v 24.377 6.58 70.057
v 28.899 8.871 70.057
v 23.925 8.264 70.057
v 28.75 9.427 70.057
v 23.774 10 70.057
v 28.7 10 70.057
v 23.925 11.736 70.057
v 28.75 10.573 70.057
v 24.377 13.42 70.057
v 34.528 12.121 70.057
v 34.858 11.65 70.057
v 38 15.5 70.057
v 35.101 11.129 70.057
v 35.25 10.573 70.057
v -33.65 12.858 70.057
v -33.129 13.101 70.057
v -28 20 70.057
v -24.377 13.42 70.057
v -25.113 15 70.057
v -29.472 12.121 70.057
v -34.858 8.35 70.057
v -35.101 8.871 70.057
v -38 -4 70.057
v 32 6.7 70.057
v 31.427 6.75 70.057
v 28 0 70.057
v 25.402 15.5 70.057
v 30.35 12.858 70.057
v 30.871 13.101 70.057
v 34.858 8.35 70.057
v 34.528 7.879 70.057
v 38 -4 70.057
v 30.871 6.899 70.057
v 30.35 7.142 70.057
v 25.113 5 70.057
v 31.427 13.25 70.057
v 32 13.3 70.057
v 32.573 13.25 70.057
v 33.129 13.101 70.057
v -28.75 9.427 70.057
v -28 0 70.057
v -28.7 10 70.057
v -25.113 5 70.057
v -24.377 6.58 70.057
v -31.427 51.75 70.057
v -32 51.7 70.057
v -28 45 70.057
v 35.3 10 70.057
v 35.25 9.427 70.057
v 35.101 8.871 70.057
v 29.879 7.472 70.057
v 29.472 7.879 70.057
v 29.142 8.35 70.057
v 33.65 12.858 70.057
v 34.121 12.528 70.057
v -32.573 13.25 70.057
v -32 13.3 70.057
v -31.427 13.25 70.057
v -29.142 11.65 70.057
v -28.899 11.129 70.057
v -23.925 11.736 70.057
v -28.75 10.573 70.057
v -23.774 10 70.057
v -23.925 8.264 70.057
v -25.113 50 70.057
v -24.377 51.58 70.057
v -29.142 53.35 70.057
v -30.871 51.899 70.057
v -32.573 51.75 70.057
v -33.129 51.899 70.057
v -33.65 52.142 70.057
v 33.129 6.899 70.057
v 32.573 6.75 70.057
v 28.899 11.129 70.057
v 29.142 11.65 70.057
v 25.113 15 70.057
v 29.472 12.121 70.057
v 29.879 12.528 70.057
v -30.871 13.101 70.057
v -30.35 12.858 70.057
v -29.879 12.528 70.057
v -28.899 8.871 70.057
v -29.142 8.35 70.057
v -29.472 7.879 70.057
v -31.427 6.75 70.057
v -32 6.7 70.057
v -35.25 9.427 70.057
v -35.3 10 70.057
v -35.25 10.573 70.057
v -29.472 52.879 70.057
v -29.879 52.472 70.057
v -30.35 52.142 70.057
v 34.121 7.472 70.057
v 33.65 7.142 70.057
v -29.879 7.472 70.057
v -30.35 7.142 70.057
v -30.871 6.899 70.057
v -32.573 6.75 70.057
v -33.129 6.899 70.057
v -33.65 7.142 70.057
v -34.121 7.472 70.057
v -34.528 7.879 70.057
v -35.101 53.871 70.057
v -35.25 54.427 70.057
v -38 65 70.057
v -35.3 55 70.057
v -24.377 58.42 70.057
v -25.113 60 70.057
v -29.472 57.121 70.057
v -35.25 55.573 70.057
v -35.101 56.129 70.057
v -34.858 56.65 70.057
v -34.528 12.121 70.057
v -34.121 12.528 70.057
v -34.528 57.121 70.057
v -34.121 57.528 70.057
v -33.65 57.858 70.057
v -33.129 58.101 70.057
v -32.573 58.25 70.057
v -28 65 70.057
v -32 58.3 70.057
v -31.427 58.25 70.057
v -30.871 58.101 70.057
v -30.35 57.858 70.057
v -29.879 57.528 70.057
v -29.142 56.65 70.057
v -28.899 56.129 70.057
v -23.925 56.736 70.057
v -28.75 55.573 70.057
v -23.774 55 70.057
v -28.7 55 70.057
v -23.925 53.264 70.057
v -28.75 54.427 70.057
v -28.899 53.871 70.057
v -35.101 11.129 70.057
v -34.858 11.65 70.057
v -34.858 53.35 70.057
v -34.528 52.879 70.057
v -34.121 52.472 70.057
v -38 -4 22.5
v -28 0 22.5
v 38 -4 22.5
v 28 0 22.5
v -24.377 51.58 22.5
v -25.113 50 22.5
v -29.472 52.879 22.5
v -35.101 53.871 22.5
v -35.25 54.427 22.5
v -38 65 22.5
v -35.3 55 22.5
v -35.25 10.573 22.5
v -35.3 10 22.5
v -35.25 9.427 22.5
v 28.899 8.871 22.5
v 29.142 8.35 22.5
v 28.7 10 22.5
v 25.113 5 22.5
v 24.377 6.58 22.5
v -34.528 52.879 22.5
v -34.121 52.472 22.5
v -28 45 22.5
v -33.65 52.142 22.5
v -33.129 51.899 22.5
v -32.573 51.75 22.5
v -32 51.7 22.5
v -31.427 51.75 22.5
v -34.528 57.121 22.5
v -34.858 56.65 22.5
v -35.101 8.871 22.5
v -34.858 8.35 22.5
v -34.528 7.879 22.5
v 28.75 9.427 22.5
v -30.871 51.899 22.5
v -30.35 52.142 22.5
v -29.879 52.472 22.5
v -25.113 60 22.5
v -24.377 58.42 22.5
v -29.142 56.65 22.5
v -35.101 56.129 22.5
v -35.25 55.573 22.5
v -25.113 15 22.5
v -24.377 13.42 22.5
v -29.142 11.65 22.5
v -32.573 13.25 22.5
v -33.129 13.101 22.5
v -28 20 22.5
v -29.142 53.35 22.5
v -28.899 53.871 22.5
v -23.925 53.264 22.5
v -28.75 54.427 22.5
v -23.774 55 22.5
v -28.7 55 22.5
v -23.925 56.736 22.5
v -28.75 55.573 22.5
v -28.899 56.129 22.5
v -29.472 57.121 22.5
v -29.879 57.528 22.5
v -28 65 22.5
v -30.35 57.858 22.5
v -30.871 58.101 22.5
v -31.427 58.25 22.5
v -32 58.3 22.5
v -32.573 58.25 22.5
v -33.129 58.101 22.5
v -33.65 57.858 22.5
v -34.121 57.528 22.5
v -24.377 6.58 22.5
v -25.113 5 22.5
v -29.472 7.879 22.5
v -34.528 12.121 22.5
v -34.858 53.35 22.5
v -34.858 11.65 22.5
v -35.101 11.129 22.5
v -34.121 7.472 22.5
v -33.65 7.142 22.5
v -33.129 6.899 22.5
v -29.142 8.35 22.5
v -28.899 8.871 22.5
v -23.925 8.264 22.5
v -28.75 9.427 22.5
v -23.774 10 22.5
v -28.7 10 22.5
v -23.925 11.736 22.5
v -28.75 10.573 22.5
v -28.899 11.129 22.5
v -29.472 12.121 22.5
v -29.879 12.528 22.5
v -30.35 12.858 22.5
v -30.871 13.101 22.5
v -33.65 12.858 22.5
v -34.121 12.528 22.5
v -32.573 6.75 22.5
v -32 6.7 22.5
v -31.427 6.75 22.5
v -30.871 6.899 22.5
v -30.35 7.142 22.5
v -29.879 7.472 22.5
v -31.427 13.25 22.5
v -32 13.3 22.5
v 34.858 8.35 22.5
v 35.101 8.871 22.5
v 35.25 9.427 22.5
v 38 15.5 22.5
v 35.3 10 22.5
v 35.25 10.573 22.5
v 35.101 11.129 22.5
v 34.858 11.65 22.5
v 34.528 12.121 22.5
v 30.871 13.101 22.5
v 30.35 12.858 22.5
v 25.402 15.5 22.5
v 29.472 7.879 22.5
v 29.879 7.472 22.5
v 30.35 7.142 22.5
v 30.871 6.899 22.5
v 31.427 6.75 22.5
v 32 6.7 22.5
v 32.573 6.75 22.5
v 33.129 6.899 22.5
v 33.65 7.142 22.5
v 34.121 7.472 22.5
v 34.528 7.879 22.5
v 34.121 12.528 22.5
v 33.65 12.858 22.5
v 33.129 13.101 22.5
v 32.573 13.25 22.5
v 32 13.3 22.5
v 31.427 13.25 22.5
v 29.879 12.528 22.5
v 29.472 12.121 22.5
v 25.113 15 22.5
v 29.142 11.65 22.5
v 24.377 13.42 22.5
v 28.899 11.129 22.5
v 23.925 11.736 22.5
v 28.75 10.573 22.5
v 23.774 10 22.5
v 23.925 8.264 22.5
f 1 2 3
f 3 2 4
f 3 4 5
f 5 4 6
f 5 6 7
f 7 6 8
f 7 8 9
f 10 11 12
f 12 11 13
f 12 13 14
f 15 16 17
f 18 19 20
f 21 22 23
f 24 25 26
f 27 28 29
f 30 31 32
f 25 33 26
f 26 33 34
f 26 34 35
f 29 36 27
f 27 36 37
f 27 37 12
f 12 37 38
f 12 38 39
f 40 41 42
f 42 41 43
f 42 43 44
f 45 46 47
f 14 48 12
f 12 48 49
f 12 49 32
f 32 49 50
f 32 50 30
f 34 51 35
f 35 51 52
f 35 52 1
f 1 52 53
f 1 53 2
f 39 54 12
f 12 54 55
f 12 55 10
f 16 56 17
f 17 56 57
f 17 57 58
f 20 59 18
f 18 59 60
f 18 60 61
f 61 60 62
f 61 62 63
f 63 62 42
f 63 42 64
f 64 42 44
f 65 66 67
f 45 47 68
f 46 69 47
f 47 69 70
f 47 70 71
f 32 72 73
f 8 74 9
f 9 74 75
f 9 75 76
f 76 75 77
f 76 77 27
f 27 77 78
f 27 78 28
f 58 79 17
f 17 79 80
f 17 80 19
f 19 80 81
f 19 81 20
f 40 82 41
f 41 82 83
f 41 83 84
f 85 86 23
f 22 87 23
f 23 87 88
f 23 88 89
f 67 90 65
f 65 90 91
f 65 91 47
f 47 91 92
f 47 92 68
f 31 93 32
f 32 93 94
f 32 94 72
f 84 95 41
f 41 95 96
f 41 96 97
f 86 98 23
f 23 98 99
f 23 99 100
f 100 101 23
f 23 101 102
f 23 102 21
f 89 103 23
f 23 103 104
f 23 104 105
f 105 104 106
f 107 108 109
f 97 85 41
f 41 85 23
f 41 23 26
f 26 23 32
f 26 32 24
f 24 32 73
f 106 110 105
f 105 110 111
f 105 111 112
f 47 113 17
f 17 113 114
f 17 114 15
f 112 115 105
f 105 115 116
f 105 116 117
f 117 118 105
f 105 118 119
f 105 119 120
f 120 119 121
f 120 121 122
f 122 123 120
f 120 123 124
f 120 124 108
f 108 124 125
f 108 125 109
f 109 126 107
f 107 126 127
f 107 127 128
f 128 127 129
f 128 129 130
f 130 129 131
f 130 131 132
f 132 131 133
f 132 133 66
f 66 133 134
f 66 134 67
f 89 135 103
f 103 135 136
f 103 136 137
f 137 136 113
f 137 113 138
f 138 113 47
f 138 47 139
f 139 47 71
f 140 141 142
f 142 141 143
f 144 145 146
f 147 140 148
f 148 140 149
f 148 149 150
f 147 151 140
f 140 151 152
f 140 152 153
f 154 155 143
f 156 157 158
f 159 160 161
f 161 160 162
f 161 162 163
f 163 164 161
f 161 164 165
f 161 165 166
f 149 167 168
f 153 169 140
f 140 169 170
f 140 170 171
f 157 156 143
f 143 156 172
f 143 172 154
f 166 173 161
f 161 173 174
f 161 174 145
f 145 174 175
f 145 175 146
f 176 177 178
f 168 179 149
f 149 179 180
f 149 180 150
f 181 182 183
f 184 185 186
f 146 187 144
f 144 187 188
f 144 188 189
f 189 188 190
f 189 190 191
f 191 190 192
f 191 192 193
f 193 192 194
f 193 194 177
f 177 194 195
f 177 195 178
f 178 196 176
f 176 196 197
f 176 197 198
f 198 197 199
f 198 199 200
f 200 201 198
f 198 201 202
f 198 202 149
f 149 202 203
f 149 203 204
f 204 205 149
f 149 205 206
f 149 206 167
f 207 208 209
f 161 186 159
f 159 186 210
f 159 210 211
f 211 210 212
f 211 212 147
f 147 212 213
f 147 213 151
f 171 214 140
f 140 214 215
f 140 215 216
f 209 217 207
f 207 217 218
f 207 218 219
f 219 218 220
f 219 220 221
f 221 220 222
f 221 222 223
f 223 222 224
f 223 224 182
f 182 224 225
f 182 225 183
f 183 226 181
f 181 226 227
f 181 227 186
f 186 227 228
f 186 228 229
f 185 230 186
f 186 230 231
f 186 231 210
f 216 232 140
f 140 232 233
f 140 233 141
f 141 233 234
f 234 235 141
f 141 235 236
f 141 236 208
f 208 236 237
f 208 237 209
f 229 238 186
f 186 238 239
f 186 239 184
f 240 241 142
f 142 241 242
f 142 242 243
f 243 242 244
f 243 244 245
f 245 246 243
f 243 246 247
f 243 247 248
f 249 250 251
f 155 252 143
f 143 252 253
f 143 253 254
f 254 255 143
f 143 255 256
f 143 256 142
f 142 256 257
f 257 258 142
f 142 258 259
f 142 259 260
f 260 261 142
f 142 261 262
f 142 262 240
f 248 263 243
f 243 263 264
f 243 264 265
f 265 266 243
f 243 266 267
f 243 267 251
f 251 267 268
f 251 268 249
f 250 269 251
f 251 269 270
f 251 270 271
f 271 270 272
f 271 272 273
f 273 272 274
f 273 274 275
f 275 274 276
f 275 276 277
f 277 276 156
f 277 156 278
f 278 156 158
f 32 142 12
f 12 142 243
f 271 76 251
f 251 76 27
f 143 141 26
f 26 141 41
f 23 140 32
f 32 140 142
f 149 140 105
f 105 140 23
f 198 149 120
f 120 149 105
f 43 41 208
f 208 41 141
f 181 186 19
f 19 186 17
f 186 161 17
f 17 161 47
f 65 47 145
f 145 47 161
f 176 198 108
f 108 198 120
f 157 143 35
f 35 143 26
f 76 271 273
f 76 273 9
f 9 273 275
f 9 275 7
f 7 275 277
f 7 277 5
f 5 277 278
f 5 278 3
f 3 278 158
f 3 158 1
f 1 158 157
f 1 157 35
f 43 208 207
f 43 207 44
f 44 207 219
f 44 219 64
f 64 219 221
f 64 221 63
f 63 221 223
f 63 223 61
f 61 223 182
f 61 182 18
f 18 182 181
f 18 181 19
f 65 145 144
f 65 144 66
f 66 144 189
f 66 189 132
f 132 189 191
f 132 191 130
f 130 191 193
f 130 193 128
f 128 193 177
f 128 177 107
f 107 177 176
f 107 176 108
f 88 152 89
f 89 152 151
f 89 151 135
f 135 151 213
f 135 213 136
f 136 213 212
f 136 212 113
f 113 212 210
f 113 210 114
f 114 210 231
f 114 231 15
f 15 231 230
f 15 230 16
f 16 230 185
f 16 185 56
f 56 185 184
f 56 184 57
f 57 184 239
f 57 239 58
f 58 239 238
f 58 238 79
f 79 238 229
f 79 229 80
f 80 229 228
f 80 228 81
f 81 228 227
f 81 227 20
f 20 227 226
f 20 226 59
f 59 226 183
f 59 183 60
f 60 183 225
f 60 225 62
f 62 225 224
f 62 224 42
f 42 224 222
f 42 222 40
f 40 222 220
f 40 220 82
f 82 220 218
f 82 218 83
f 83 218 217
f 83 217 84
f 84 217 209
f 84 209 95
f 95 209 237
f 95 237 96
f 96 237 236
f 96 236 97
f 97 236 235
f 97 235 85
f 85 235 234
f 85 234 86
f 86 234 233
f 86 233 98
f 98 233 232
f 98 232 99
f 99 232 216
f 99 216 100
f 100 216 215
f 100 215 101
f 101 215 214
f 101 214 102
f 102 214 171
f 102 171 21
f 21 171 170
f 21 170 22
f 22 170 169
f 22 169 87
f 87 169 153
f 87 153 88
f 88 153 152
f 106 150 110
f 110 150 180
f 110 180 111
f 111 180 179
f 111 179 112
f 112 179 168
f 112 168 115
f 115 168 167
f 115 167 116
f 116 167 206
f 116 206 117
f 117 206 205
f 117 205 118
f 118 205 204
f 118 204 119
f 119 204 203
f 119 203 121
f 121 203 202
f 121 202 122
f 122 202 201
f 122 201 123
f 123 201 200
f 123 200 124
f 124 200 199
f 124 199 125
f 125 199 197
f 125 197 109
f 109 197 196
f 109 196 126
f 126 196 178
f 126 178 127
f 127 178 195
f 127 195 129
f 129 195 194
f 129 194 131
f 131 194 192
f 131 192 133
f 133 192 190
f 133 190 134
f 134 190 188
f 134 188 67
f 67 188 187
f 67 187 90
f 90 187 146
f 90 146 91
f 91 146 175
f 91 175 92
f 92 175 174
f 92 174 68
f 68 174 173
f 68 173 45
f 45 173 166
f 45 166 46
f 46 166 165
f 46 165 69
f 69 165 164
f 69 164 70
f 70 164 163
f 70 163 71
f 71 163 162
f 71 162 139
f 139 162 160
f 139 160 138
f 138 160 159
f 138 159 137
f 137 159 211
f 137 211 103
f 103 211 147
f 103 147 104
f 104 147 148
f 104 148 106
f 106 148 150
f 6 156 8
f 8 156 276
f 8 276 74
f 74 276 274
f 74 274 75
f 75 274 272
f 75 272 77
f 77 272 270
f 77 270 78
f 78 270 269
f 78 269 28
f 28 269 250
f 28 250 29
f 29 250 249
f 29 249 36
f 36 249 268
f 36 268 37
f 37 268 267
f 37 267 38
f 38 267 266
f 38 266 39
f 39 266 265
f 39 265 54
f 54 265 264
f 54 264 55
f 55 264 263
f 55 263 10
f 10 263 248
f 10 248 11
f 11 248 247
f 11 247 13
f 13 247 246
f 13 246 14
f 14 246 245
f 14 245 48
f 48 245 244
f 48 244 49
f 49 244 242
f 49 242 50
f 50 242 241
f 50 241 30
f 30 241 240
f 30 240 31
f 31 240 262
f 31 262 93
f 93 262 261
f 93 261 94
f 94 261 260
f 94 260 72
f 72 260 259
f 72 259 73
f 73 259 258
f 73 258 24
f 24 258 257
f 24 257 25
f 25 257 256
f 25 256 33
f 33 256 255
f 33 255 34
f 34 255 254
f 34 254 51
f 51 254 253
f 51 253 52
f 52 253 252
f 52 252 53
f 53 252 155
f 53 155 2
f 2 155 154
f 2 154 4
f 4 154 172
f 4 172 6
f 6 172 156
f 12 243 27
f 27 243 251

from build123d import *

# Parameters (mm, degrees)
SKIZZE1_W                       = 47.557374535
SKIZZE1_H                       = 4
AUFSATZ_LINEAR_AUSTRAGEN1_DEPTH = 76
AUFSATZ_LINEAR_AUSTRAGEN2_DEPTH = 47.557374535
VERRUNDUNG1_R                   = 10
SKIZZE3_R                       = 3.3
SCHNITT_LINEAR_AUSTRAGEN1_DEPTH = 47.557374535
SKIZZE4_W                       = 47.557374535
SKIZZE4_H                       = 15
SCHNITT_LINEAR_AUSTRAGEN2_DEPTH = 30
SKIZZE5_W                       = 47.557374535
SKIZZE5_H                       = 34.5
TEMPOR_R_DEPTH                  = 20


with BuildPart() as part:
    # Skizze1 → Aufsatz-Linear austragen1 (new body)
    with BuildSketch(Plane.ZY.offset(38)):
        with Locations((46.278687268, -2)):
            Rectangle(SKIZZE1_W, SKIZZE1_H)
    extrude(amount=-AUFSATZ_LINEAR_AUSTRAGEN1_DEPTH)

    # Skizze2 → Aufsatz-Linear austragen2 (add)
    with BuildSketch(Plane.XY.offset(22.5)):
        Polygon((-38, 65), (-38, 0), (-28, 0), (-22.226497308, 10), (-28, 20), (-28, 45), (-22.226497308, 55), (-28, 65), align=None)
        Polygon((28, 65), (38, 65), (38, 0), (28, 0), (22.226497308, 10), (28, 20), (28, 45), (22.226497308, 55), align=None)
    extrude(amount=AUFSATZ_LINEAR_AUSTRAGEN2_DEPTH)

    # Verrundung1
    verrundung1_edges = [part.edges().sort_by_distance(p)[0] for p in [
        (-22.226497308, 10, 46.278687268),
        (-22.226497308, 55, 46.278687268),
        (22.226497308, 55, 46.278687268),
        (22.226497308, 10, 46.278687268),
    ]]
    fillet(verrundung1_edges, radius=VERRUNDUNG1_R)

    # Skizze3 → Schnitt-Linear austragen1 (cut)
    with BuildSketch(Plane(origin=(0, 0, 22.5), x_dir=(-1, 0, 0), z_dir=(0, 0, -1))):
        with Locations((32, 10)):
            Circle(SKIZZE3_R)
        with Locations((32, 55)):
            Circle(SKIZZE3_R)
        with Locations((-32, 55)):
            Circle(SKIZZE3_R)
        with Locations((-32, 10)):
            Circle(SKIZZE3_R)
    extrude(amount=-SCHNITT_LINEAR_AUSTRAGEN1_DEPTH, mode=Mode.SUBTRACT)

    # Skizze4 → Schnitt-Linear austragen2 (cut)
    with BuildSketch(Plane.ZY.offset(-38)):
        with Locations((46.278687268, 23)):
            Rectangle(SKIZZE4_W, SKIZZE4_H)
    extrude(amount=SCHNITT_LINEAR_AUSTRAGEN2_DEPTH, mode=Mode.SUBTRACT)


with BuildPart() as schnitt_linear_austragen2_piece_1:
    # of the separate pieces the step leaves, piece 1, a body of its own (schnitt_linear_austragen2_pieces)
    add(part.part.solids().sort_by_distance((38, 15.5, 22.5))[0])


with BuildPart() as schnitt_linear_austragen2_piece_2:
    # of the separate pieces the step leaves, piece 2, a body of its own (schnitt_linear_austragen2_pieces)
    add(part.part.solids().sort_by_distance((25.113248654, 60, 22.5))[0])

    # Skizze5 → temporär (cut)
    with BuildSketch(Plane(origin=(38, 0, 0), x_dir=(0, 0, -1), z_dir=(1, 0, 0))):
        with Locations((-46.278687268, 47.75)):
            Rectangle(SKIZZE5_W, SKIZZE5_H)
    extrude(amount=-TEMPOR_R_DEPTH, mode=Mode.SUBTRACT)


solid = schnitt_linear_austragen2_piece_1.part
